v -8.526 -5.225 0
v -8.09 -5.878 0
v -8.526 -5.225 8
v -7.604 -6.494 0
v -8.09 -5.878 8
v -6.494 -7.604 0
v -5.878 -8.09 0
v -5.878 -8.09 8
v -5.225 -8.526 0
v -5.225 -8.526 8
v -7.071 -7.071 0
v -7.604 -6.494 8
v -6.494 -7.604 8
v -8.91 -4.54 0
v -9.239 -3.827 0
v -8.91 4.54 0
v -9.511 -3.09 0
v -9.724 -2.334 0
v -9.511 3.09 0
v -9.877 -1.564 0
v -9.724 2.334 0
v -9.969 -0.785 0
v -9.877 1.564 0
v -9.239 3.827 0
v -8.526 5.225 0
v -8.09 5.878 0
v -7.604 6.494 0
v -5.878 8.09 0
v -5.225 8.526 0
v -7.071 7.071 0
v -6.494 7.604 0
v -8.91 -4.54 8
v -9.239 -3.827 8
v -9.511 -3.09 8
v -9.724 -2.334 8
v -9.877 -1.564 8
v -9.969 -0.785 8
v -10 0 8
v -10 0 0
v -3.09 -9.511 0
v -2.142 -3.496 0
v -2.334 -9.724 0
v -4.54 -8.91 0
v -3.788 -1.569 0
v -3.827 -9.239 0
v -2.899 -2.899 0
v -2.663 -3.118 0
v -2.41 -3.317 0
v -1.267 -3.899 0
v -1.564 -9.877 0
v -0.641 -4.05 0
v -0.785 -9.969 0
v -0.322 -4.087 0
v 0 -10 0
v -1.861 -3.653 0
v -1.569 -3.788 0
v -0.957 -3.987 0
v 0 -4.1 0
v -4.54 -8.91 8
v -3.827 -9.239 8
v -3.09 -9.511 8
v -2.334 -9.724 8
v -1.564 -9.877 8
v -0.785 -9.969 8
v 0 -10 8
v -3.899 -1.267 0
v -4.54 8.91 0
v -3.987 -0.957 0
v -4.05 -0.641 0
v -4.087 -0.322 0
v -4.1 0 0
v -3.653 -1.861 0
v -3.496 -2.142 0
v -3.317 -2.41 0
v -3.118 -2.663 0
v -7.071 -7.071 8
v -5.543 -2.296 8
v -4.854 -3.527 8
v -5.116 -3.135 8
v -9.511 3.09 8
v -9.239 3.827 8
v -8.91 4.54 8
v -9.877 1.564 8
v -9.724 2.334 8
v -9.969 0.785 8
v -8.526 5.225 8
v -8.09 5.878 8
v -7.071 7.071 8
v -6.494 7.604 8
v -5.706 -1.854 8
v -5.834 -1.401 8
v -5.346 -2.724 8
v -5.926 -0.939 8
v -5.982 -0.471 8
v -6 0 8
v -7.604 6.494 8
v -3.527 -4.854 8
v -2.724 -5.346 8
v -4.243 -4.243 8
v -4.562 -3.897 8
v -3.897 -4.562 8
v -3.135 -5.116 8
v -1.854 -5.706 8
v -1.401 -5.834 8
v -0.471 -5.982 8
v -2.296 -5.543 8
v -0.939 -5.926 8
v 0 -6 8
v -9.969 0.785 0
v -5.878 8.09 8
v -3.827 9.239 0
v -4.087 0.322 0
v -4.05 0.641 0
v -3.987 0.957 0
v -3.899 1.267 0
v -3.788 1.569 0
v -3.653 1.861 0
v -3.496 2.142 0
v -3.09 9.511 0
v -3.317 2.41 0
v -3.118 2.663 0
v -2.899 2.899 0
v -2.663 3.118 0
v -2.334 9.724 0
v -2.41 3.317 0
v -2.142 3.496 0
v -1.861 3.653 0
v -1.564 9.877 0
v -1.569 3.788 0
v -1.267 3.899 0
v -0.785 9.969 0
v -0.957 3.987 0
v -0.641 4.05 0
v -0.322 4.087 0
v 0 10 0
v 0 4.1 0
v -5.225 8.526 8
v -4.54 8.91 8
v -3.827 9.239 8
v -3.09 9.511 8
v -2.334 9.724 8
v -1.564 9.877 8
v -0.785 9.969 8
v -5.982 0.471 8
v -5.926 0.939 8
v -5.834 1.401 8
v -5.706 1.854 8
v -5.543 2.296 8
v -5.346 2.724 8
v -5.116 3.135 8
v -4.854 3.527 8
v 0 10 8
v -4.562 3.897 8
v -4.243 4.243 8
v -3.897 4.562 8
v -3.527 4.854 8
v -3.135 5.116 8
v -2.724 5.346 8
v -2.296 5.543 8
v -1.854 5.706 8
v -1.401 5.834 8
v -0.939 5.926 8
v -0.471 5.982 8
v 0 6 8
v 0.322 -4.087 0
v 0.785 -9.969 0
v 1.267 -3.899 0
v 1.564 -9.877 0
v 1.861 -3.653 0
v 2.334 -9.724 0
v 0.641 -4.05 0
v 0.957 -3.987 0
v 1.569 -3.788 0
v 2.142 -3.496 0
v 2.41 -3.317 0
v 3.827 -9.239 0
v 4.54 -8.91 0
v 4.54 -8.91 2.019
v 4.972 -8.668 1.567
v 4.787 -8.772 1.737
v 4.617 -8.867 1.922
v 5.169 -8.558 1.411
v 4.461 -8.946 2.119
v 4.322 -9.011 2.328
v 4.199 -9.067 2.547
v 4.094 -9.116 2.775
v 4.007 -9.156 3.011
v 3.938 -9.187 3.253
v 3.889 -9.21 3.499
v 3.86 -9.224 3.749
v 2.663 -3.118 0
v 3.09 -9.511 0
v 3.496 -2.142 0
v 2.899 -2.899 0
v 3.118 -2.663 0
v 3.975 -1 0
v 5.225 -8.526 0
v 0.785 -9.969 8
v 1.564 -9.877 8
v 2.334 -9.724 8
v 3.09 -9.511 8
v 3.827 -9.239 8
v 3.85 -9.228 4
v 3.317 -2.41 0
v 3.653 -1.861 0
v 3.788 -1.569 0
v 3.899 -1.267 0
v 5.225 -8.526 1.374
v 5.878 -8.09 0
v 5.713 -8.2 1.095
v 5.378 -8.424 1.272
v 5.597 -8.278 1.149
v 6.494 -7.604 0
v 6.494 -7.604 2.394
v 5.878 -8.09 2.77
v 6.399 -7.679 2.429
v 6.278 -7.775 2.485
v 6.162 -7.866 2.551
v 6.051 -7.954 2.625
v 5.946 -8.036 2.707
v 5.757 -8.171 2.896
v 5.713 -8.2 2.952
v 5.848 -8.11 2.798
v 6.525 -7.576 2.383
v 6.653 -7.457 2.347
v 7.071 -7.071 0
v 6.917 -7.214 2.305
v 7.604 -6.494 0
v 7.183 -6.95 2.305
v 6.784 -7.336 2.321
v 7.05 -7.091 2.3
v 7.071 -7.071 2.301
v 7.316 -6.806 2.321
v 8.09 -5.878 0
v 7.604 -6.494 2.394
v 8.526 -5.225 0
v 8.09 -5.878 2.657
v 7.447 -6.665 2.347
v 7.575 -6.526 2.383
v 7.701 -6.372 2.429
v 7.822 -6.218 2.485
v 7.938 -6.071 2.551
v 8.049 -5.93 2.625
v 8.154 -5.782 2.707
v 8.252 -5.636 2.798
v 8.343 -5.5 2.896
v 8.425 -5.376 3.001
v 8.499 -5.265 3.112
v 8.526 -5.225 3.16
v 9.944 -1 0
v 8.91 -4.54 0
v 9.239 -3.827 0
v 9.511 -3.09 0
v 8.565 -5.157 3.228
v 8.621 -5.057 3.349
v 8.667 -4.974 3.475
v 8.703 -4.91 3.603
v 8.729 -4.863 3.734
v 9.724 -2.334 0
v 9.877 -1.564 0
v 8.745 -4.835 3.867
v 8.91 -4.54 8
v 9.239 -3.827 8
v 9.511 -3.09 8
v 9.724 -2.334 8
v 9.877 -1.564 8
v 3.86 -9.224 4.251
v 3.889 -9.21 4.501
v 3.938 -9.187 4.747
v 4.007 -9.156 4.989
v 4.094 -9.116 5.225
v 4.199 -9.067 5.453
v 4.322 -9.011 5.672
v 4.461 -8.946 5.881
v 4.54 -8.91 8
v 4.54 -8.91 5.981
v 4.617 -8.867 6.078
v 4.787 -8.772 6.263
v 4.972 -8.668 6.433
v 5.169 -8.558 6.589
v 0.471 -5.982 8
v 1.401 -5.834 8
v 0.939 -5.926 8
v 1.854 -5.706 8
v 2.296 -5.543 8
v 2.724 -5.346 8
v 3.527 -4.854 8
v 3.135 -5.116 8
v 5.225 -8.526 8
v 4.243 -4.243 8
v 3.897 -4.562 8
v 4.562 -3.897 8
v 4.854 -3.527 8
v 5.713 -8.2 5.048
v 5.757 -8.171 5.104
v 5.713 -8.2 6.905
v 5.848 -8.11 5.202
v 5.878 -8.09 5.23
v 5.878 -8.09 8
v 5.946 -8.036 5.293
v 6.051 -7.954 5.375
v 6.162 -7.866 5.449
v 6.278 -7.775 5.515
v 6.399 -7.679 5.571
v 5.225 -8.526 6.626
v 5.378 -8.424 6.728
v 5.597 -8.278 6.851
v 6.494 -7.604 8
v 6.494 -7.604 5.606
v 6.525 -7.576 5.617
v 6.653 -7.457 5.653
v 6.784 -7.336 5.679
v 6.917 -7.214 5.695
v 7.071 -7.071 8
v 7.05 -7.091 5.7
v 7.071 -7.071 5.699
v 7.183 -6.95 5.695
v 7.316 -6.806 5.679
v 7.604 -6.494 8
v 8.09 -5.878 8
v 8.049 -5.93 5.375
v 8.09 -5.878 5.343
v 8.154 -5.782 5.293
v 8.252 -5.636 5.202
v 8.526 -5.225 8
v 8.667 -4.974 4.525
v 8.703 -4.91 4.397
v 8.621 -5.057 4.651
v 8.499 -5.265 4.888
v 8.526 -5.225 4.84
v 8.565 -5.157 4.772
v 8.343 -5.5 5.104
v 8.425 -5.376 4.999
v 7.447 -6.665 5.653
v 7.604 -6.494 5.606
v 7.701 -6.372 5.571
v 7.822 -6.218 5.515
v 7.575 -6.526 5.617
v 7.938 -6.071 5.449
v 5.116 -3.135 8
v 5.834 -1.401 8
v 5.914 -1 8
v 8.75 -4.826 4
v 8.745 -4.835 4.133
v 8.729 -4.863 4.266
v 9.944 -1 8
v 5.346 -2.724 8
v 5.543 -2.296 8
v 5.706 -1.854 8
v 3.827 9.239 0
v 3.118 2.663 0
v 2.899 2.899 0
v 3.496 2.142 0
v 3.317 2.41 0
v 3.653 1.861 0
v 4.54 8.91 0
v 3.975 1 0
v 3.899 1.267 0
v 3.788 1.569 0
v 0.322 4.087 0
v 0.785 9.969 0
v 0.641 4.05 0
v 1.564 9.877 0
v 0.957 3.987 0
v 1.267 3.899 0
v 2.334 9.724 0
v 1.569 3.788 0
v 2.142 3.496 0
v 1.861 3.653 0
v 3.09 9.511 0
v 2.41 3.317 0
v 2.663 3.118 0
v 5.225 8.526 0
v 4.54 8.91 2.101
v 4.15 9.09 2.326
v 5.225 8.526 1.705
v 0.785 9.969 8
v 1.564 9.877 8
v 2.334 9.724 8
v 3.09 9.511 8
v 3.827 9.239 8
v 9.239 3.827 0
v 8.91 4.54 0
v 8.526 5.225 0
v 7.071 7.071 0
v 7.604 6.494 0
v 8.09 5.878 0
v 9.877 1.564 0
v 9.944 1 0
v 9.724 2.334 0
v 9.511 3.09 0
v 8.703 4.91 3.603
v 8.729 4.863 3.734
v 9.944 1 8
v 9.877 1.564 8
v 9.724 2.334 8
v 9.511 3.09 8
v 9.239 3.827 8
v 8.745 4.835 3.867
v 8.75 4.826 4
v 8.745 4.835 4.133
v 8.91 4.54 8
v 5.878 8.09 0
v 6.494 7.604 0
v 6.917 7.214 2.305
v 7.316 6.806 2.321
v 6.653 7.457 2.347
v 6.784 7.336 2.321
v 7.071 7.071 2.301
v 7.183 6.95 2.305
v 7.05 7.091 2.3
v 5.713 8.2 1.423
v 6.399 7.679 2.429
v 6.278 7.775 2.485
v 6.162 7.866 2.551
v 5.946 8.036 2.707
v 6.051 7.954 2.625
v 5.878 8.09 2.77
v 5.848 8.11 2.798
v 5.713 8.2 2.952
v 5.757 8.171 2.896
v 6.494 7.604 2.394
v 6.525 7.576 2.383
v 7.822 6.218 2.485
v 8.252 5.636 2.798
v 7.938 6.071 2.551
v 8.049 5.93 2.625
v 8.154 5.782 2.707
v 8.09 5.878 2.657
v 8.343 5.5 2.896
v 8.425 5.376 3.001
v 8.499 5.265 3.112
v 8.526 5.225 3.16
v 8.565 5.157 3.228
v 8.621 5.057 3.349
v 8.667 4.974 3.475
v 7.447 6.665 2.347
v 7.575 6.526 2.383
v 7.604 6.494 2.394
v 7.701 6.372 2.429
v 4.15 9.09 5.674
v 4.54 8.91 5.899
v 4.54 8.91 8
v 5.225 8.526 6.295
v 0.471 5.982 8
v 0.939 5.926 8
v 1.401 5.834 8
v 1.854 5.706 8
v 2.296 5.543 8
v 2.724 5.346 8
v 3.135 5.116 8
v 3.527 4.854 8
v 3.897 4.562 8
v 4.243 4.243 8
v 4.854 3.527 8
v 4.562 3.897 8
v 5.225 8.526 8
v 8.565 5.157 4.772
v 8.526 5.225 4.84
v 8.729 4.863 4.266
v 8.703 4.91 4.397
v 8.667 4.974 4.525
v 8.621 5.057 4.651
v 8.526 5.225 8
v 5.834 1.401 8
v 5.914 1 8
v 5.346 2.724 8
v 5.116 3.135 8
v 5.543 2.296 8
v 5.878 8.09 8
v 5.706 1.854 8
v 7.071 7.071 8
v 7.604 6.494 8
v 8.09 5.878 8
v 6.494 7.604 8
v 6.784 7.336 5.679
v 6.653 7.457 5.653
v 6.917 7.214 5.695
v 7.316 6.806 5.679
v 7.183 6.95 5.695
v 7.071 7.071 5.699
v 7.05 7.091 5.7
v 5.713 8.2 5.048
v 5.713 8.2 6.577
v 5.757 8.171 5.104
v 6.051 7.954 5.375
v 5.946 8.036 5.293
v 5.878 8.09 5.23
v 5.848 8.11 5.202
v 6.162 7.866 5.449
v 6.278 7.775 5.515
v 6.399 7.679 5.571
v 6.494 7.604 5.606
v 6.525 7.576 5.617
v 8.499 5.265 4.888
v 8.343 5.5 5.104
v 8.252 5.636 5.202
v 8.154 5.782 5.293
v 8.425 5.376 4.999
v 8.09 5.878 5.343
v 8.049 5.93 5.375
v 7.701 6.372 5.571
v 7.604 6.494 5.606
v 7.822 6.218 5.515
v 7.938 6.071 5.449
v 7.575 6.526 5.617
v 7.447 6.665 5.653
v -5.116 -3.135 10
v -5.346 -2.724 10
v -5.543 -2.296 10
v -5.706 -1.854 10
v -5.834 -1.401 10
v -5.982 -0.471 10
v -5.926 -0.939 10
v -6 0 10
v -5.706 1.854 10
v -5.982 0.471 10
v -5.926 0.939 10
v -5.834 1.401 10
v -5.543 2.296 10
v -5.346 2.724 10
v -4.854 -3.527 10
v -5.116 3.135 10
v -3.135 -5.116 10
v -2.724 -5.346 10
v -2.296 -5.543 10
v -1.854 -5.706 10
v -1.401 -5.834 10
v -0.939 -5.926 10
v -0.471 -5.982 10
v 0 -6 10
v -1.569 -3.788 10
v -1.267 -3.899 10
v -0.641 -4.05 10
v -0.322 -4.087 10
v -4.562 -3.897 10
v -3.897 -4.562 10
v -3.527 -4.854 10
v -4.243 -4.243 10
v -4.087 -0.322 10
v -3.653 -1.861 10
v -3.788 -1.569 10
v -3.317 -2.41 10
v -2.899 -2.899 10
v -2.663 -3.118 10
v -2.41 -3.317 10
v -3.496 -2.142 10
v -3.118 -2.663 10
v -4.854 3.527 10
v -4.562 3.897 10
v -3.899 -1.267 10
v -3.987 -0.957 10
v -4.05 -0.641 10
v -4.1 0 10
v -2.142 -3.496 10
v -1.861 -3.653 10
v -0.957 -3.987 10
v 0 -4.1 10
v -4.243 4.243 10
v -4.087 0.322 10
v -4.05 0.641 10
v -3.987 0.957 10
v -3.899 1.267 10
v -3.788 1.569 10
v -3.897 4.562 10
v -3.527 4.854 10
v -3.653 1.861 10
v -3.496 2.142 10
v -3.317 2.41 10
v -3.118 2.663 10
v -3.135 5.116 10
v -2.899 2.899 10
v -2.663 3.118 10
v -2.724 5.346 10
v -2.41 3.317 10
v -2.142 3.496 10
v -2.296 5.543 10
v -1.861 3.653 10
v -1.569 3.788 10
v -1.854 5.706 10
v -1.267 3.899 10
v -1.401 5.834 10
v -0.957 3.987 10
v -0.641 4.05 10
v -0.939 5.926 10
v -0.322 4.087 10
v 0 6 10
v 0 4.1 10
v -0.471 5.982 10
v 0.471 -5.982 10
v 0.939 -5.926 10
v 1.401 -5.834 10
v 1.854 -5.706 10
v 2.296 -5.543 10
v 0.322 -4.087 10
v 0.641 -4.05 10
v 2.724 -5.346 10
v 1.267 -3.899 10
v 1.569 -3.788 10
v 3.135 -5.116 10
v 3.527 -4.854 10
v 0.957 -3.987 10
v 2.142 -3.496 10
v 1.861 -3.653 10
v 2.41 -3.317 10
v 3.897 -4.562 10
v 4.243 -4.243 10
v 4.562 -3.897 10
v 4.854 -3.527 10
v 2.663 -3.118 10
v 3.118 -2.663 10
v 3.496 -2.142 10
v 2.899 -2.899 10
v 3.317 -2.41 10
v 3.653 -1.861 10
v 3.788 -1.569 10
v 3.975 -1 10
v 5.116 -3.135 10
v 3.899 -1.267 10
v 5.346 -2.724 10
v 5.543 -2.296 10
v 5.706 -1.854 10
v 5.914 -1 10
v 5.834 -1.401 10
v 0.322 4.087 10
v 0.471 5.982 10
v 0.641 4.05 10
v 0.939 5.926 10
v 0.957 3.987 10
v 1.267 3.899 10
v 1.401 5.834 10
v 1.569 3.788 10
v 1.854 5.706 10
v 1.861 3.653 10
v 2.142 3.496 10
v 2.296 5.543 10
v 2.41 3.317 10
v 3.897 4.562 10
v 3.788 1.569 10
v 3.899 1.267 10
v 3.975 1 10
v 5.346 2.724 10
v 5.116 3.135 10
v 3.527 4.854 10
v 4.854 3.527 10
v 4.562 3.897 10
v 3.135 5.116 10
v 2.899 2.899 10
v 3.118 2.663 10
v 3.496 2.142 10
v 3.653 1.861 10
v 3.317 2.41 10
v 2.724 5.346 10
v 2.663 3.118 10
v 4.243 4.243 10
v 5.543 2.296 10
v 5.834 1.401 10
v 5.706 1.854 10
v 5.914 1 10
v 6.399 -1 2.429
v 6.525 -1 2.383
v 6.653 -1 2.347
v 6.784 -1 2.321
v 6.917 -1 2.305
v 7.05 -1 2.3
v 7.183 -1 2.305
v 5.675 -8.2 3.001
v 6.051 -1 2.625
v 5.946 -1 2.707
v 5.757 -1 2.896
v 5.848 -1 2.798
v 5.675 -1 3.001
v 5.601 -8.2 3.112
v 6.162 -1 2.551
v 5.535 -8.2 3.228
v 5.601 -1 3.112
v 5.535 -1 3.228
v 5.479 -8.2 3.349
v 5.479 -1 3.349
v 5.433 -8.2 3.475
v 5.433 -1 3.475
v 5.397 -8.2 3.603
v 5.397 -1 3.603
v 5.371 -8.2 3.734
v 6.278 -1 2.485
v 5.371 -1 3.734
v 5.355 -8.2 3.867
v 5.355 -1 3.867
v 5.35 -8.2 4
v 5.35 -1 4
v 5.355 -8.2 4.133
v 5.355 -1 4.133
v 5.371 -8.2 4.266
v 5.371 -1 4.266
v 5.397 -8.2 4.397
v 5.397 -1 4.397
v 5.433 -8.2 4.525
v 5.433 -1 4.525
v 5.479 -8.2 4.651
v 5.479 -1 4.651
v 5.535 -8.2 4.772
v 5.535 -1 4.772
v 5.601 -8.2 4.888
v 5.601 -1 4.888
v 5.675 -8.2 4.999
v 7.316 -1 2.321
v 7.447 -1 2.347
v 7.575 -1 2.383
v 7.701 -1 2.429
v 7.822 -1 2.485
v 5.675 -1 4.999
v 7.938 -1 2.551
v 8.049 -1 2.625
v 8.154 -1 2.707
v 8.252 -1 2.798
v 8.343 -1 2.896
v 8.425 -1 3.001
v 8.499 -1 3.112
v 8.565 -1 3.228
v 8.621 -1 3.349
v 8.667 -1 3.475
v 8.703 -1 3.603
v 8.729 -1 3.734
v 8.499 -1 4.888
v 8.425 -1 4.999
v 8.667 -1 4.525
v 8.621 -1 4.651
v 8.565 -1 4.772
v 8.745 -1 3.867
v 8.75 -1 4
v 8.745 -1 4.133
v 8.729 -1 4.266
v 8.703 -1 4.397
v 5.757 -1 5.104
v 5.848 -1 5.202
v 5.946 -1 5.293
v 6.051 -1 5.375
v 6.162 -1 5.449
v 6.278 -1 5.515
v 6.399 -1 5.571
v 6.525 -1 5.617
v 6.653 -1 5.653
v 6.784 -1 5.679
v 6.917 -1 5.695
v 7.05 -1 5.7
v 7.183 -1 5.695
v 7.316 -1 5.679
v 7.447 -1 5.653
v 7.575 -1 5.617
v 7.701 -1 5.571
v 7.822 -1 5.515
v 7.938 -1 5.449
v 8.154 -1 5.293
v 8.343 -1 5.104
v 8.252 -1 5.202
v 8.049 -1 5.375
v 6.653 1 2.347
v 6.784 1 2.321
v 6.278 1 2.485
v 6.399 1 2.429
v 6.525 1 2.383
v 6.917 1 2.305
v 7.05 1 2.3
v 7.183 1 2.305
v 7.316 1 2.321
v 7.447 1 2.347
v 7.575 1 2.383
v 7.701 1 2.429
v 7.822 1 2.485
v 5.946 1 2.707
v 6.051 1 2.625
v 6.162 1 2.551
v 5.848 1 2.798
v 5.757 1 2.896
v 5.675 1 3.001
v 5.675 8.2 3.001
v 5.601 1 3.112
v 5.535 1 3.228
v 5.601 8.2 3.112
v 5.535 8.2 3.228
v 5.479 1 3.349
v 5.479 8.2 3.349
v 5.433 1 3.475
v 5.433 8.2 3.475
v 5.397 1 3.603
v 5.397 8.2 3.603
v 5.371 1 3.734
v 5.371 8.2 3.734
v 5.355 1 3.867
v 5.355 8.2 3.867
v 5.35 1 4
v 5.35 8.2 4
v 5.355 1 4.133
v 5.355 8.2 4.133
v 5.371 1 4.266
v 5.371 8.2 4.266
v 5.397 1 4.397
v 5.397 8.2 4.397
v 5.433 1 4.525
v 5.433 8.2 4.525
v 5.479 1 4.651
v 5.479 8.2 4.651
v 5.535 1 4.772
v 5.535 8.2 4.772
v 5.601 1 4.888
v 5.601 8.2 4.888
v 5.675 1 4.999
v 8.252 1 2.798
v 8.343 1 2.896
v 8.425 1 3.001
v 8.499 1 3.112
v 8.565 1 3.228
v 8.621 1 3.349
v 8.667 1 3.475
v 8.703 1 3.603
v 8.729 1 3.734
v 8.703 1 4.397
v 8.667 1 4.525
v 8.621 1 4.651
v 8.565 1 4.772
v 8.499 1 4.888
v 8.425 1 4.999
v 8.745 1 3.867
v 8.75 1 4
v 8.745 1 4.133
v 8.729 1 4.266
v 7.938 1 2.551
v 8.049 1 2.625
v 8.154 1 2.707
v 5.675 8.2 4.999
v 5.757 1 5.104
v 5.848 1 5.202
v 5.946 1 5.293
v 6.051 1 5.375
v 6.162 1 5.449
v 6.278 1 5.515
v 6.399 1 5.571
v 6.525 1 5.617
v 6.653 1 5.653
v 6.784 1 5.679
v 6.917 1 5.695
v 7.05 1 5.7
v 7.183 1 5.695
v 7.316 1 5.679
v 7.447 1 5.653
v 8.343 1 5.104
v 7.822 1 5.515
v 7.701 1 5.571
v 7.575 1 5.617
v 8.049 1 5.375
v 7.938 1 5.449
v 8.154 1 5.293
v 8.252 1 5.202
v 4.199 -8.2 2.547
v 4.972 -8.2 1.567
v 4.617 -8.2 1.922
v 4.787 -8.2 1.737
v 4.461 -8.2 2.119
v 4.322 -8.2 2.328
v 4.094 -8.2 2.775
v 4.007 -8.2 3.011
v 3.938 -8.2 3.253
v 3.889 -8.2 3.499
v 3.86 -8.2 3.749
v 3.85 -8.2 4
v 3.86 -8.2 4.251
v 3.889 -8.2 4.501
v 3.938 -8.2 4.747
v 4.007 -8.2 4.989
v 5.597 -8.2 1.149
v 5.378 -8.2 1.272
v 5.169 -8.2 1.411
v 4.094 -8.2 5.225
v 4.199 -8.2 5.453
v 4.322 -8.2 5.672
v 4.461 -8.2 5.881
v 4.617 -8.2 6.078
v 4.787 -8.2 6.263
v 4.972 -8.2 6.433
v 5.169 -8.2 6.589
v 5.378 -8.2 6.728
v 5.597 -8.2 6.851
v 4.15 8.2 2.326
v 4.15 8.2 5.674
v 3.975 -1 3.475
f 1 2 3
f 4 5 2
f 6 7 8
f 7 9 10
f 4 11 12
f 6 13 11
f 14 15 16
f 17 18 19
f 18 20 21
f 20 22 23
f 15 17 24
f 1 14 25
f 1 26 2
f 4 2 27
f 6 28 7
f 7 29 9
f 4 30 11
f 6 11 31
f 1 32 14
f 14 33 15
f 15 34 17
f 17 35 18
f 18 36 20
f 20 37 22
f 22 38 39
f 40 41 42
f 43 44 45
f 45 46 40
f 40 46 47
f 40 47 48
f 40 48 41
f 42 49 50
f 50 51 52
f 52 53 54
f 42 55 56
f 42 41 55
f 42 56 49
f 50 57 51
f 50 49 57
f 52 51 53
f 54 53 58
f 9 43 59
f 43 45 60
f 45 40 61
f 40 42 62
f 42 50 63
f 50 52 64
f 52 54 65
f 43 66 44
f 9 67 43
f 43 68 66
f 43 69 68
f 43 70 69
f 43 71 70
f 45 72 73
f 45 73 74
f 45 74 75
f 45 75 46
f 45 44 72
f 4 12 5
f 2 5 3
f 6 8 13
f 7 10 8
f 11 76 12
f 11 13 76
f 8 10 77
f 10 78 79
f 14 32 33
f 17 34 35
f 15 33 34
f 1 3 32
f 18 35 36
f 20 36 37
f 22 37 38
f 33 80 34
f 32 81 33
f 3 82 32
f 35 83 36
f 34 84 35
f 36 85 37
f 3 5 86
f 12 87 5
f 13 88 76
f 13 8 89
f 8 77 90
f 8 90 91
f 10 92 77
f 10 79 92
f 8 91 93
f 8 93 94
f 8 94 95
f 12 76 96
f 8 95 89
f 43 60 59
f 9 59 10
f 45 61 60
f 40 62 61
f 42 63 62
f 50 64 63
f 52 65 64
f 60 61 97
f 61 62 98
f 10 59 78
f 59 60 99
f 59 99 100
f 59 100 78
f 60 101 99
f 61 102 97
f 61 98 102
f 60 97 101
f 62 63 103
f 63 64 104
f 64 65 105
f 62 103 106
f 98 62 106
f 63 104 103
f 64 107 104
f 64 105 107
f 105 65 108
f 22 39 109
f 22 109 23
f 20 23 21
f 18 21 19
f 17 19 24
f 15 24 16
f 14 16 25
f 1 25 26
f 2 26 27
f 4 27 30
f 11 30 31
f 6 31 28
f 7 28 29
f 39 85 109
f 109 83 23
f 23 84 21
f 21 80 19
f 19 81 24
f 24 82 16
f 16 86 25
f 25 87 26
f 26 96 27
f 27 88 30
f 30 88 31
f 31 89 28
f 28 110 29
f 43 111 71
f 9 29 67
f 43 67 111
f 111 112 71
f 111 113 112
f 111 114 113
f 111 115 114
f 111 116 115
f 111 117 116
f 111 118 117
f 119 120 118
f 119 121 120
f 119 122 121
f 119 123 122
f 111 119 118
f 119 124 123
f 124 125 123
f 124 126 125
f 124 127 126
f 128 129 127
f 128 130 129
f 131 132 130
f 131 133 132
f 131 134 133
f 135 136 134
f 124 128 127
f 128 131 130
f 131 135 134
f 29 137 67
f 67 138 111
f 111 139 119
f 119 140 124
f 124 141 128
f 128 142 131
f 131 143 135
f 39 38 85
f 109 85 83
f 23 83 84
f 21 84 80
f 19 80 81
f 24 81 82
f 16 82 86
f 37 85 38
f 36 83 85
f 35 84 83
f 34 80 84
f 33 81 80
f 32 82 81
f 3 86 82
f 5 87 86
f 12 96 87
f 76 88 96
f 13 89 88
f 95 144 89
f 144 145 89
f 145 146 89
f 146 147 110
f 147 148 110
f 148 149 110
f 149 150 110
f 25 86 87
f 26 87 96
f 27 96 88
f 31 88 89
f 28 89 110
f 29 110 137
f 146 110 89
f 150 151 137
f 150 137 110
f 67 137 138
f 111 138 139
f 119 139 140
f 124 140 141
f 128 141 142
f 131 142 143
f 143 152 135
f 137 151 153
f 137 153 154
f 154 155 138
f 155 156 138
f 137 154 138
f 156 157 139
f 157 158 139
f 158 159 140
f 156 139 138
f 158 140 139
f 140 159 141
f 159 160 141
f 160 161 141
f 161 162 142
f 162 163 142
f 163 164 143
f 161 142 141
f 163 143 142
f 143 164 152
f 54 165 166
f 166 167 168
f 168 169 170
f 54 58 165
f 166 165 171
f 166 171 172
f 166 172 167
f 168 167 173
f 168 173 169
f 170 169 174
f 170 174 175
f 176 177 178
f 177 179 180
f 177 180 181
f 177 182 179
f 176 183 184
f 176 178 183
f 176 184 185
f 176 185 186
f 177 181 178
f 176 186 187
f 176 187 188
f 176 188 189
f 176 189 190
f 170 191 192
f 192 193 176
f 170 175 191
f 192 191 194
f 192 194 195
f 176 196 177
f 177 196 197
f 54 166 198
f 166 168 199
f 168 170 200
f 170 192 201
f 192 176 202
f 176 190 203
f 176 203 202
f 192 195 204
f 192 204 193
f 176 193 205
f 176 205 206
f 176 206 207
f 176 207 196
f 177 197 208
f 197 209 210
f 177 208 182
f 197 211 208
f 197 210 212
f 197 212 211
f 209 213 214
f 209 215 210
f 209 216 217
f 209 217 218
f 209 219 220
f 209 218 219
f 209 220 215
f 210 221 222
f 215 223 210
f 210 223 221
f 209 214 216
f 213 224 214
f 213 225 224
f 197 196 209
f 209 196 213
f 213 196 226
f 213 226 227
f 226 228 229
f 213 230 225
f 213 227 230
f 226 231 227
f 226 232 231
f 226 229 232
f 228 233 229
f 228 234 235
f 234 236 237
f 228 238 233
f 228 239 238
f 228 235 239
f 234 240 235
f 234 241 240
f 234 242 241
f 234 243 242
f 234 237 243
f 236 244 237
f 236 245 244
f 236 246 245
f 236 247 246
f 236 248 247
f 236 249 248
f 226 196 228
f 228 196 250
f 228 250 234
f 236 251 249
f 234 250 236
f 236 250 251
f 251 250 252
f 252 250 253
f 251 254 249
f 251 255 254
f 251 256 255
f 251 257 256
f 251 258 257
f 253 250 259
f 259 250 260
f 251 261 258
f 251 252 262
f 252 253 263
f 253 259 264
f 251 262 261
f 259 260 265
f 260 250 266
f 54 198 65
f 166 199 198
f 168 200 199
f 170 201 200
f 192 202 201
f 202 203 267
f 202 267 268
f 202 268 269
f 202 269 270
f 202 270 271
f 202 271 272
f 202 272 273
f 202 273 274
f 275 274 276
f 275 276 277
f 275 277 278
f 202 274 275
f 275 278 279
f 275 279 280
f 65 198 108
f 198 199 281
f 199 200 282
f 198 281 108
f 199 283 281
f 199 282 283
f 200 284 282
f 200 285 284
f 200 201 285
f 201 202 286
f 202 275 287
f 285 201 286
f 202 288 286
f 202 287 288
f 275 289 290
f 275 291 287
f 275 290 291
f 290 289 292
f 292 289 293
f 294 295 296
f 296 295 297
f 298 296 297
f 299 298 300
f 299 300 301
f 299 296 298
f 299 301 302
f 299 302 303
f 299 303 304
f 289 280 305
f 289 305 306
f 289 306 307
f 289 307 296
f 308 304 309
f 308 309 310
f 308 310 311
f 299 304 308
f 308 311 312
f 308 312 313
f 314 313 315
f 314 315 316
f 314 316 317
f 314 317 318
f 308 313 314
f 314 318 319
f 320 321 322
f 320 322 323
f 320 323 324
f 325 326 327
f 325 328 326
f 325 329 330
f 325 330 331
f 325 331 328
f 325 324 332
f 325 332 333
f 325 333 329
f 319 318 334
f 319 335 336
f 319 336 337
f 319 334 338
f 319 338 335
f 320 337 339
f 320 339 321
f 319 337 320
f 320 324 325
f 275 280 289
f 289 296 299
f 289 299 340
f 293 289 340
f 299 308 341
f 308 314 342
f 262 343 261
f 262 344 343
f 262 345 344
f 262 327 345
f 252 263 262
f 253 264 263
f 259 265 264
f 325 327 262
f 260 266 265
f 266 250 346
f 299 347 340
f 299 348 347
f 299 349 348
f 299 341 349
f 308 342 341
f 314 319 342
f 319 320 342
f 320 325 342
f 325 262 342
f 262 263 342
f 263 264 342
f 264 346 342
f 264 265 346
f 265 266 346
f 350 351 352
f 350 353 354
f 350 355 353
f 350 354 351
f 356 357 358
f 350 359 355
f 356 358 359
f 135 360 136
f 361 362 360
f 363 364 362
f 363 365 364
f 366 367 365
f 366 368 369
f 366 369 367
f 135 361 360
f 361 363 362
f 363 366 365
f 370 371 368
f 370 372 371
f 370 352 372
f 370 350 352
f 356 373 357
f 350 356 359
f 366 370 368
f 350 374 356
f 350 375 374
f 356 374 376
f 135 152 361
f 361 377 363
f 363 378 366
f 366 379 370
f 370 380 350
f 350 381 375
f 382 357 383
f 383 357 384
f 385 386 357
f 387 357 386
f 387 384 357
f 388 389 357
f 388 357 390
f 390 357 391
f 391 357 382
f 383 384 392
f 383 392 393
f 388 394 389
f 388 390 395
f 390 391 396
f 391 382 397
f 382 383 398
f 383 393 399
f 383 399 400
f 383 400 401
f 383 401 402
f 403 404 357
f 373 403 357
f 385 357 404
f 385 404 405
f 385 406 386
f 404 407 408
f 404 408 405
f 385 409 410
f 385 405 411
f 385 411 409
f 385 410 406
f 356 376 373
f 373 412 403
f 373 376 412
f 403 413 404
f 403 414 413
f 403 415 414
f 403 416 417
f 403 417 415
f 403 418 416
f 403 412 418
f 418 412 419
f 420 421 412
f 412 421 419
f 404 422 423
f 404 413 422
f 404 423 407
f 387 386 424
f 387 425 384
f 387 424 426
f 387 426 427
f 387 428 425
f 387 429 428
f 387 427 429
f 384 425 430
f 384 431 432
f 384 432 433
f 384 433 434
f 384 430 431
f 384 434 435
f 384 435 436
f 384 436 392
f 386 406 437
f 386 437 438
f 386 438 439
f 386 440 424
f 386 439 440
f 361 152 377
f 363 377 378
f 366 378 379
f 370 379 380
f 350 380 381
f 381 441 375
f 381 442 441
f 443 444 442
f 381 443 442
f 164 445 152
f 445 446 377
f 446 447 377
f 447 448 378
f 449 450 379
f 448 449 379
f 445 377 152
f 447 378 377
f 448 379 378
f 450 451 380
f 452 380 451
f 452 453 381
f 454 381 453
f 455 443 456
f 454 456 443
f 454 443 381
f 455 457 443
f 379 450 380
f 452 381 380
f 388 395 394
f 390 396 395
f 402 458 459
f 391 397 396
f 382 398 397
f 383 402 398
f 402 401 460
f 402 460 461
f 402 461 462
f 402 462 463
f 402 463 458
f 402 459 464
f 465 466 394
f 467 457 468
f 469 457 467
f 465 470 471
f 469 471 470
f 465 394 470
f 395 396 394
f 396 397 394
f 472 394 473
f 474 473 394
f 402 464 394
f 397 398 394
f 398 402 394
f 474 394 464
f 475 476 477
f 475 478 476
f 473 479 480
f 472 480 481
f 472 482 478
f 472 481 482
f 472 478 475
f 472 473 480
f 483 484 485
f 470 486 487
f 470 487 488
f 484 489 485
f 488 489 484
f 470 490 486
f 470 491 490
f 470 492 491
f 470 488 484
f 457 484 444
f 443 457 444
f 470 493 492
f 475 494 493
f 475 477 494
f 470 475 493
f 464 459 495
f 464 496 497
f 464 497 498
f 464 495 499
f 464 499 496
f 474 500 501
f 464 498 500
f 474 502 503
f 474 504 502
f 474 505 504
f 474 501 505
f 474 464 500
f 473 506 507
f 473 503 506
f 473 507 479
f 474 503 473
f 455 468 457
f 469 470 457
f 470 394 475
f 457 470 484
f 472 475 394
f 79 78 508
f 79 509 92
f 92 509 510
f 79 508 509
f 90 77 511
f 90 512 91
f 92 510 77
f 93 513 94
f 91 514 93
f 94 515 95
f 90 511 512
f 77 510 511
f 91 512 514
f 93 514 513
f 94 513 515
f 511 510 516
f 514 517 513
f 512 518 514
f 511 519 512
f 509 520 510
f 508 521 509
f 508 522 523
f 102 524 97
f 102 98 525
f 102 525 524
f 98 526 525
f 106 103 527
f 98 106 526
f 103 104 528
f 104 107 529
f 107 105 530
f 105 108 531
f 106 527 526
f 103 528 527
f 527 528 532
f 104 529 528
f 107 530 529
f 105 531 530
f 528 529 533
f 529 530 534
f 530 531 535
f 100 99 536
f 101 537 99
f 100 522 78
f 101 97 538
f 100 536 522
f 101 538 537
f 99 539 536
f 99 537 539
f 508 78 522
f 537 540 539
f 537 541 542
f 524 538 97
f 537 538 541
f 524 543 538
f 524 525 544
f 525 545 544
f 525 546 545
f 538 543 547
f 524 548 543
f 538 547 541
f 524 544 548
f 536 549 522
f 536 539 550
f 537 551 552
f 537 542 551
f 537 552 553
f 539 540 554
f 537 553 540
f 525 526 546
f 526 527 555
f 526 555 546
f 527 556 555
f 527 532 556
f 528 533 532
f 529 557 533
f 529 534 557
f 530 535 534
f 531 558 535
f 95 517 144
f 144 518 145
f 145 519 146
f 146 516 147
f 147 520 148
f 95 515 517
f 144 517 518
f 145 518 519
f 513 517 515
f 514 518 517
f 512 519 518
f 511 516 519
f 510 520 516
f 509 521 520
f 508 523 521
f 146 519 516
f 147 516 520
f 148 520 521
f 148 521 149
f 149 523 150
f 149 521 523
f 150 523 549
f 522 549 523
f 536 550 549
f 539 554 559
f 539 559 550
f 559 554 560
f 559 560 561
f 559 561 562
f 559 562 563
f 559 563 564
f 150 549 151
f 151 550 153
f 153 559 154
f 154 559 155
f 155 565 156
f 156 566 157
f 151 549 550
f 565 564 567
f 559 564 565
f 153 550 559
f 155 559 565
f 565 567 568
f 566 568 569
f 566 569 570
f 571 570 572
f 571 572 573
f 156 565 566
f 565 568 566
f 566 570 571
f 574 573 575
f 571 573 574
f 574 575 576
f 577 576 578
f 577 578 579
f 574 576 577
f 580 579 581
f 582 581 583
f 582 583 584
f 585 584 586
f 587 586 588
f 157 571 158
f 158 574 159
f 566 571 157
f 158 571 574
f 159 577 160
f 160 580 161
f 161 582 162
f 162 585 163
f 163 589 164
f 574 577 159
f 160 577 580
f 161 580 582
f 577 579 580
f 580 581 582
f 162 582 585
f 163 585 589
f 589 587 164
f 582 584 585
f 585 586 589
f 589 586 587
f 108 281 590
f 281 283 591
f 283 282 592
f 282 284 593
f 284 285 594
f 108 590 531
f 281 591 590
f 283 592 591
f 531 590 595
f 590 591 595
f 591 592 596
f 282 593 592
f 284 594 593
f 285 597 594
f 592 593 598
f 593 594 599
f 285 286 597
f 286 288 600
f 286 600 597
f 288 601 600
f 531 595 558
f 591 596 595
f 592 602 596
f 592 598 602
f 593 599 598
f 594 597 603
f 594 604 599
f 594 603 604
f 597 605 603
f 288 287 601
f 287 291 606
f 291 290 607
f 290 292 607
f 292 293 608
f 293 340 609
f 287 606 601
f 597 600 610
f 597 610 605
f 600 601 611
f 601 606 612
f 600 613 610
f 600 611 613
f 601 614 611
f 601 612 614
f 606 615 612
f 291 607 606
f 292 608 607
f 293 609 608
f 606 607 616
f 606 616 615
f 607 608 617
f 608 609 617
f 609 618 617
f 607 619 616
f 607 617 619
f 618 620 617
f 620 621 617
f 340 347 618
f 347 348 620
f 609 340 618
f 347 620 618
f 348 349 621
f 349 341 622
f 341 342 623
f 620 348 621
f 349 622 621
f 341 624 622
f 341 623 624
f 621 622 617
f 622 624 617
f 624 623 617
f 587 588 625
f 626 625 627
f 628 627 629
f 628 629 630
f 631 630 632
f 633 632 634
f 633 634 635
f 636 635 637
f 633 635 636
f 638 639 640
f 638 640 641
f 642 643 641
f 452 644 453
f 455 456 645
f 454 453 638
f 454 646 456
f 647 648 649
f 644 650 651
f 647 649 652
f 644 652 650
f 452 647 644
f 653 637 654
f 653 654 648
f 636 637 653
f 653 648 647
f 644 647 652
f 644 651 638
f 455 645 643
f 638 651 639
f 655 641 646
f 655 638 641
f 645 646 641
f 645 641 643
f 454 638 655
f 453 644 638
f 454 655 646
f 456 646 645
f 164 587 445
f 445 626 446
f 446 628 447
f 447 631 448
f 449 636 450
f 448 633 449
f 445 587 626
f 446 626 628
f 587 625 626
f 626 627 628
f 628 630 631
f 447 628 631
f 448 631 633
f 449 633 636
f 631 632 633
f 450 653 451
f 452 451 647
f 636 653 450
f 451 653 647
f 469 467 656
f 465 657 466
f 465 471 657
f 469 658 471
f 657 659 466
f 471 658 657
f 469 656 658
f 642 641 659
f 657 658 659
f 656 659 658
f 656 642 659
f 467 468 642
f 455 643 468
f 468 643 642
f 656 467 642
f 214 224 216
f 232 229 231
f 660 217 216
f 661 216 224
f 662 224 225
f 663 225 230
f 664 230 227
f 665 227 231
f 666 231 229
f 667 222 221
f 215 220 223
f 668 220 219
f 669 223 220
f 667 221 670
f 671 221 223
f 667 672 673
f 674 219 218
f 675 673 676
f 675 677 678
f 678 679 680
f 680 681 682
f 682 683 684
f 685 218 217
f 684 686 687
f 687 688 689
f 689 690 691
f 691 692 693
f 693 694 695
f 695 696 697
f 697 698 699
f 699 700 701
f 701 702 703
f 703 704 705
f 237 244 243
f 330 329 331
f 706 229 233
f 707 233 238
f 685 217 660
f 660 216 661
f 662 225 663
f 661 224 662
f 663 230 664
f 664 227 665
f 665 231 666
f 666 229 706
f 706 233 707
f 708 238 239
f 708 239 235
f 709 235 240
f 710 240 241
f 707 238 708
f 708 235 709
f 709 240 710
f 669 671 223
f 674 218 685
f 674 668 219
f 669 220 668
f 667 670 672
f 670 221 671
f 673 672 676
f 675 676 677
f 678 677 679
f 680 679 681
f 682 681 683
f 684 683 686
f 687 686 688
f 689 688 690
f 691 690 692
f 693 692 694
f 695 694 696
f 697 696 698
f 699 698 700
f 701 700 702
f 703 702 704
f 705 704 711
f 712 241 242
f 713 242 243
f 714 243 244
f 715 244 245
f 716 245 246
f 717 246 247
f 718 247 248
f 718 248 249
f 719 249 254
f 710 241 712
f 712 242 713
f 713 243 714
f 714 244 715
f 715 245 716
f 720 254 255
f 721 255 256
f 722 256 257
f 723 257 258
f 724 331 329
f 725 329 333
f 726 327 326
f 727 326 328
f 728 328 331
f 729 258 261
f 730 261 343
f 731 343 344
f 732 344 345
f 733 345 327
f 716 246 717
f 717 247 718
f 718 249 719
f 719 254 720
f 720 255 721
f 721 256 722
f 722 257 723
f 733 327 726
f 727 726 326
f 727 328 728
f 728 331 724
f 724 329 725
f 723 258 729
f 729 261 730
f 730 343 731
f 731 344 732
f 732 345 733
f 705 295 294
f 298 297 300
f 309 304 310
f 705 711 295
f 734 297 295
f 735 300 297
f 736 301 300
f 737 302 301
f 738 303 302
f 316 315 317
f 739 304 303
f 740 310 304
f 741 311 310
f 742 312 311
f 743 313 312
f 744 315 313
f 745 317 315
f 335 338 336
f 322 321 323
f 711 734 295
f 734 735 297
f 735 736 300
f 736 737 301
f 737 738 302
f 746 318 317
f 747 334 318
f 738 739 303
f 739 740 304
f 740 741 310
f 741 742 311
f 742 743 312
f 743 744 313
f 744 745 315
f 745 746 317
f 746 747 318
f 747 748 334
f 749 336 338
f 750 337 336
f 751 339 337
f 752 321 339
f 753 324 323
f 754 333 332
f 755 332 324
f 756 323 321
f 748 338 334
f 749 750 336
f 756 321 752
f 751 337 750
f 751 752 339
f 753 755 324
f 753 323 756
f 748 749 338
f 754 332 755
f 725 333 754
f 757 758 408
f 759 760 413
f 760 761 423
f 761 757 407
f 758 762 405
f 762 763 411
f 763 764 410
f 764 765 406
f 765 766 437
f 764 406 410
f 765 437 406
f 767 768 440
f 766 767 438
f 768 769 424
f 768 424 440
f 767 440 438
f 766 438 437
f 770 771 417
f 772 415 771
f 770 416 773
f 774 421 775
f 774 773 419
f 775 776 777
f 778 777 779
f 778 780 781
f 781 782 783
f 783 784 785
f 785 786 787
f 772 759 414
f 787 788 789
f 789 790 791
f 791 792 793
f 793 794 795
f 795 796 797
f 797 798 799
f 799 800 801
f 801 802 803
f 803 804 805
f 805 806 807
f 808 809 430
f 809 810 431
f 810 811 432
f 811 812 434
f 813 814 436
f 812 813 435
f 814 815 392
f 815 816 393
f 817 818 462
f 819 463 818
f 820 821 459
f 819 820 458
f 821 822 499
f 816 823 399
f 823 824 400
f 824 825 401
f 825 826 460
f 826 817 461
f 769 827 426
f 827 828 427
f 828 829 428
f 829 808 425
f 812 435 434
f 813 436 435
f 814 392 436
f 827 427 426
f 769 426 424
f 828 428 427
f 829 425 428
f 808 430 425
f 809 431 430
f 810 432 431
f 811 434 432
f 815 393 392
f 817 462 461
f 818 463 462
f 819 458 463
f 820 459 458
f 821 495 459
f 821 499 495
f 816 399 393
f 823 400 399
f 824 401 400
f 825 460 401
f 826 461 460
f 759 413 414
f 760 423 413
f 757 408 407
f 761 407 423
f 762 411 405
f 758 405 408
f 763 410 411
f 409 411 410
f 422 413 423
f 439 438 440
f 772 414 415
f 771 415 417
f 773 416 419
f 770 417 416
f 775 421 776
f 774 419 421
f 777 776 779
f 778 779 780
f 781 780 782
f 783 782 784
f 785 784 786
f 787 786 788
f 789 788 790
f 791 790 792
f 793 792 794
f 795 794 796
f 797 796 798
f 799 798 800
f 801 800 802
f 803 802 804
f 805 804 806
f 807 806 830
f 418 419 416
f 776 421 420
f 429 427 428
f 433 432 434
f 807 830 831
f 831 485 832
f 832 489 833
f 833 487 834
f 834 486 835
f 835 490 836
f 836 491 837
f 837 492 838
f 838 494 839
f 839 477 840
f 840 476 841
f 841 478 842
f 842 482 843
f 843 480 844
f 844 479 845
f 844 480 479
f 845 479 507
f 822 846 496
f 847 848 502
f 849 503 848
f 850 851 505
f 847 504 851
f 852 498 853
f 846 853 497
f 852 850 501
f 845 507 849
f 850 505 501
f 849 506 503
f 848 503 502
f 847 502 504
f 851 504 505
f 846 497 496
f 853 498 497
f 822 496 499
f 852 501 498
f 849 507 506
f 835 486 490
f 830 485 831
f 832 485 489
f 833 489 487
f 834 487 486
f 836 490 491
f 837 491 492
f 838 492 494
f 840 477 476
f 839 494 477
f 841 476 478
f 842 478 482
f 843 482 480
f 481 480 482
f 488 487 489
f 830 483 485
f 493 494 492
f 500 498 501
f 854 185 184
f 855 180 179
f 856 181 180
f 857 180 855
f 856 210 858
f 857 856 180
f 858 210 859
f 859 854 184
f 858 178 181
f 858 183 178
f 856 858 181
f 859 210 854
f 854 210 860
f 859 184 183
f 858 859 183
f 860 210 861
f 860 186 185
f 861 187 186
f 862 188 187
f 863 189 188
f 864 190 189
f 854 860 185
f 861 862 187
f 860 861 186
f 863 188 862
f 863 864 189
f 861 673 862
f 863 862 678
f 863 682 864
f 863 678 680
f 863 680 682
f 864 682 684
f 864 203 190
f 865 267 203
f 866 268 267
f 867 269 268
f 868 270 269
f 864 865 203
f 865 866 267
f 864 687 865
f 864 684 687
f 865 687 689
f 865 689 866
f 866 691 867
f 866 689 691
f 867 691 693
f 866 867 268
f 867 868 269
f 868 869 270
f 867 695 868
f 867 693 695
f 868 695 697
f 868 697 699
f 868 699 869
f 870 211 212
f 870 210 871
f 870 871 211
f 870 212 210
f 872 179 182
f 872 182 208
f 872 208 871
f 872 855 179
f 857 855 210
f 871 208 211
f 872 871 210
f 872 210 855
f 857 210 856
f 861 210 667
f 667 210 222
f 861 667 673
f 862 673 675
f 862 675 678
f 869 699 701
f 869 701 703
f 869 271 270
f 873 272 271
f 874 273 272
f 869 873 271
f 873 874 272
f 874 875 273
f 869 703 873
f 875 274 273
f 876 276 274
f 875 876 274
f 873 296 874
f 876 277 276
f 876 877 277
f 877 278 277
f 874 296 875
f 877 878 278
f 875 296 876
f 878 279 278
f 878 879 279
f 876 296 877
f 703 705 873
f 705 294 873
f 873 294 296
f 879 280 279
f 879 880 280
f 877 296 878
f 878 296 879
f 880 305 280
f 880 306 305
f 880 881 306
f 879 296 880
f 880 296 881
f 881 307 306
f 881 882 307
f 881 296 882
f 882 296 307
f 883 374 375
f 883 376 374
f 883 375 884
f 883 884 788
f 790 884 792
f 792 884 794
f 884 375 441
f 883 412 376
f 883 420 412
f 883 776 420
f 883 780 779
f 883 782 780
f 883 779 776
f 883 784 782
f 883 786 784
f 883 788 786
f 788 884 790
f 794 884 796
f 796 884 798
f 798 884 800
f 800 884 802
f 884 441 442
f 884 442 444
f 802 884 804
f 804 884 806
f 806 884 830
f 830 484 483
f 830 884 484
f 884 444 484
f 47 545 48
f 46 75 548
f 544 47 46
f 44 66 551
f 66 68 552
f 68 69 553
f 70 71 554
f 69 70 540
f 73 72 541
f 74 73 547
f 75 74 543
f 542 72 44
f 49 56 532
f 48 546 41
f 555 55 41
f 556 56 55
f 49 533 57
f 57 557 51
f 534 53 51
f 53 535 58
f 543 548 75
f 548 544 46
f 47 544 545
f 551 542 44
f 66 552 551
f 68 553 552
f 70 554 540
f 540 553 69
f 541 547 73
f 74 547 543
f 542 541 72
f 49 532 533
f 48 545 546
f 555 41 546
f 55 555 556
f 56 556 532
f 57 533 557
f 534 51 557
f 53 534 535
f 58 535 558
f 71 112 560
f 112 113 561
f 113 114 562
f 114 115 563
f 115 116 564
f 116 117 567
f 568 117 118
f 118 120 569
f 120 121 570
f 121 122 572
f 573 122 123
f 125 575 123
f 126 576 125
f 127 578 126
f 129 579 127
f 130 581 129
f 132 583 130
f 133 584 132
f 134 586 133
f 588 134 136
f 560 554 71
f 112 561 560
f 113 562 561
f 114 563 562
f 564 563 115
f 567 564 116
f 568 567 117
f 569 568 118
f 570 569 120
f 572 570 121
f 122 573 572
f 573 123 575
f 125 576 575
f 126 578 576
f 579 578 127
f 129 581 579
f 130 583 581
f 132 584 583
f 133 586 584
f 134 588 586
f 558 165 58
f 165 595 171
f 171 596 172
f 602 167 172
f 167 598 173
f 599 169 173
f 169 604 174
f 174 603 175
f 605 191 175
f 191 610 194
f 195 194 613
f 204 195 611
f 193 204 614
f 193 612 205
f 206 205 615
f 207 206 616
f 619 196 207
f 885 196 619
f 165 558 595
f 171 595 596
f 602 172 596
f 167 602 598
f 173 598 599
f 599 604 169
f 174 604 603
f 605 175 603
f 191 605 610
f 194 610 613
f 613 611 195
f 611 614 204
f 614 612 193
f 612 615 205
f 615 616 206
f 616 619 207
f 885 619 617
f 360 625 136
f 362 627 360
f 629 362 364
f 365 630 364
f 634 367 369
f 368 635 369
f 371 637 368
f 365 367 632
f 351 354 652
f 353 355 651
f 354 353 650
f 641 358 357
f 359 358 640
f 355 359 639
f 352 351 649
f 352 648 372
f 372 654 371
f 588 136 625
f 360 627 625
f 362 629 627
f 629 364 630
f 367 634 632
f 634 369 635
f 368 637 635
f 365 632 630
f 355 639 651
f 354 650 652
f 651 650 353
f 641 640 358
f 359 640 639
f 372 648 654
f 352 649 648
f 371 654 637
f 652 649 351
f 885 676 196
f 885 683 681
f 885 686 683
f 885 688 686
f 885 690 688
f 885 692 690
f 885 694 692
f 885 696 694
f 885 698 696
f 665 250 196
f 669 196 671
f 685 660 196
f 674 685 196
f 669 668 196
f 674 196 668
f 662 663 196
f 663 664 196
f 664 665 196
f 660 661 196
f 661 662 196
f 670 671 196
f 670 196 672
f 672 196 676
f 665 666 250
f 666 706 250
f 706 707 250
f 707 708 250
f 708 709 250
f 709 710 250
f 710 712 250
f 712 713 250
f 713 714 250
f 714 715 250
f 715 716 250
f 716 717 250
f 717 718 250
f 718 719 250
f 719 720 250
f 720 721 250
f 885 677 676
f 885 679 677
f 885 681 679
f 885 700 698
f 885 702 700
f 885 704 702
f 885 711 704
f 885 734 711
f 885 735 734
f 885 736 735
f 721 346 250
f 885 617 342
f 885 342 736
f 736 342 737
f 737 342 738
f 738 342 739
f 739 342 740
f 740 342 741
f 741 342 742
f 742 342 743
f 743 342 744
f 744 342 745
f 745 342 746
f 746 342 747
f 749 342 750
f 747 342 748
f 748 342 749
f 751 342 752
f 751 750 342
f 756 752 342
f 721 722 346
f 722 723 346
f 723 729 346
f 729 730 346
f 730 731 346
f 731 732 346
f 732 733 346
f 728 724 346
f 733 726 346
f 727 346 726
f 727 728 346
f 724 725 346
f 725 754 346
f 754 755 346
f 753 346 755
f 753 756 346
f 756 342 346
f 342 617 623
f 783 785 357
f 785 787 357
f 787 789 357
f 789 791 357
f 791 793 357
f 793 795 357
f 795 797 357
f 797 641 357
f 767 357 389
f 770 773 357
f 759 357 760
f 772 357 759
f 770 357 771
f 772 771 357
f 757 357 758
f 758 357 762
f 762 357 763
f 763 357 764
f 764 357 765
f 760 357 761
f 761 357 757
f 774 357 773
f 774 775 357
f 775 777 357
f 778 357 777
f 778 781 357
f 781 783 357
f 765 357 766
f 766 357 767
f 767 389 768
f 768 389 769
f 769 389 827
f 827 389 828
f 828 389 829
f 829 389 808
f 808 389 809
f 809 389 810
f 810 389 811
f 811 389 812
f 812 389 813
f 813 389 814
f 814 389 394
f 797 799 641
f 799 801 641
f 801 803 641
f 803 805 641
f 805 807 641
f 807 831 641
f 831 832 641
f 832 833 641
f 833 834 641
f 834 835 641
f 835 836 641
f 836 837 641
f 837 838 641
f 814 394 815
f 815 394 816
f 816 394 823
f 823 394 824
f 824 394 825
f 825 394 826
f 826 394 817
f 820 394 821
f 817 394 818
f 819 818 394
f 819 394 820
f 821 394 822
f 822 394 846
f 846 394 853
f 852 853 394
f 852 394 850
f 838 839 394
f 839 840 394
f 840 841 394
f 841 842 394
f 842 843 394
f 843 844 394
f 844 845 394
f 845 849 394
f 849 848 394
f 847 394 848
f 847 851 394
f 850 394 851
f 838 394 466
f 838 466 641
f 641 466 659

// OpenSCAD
// file: design_params.scad
// ============================================================
// SKUA SHARED DESIGN PARAMETERS — single source of truth for
// every dimension two parts must agree on.
//
// Consumers:
//   - every part in cad/ does        include <design_params.scad>
//   - parts in cad/calibration/ do   include <../design_params.scad>
//   - scripts/check_params.py FAILS the build if any of these names
//     is re-declared anywhere else — change values HERE only.
//
// Keep this file to simple `name = value;` lines so the tooling can
// parse it. One-off experiments: `openscad -D name=value` beats the
// include, no need to edit this file.
// ============================================================

// --- Aluminum rod stock (bought; ONE diameter everywhere) ---
// 8 mm rod is chosen to match the 608 bearing bore, so the shaft and
// both arms cut from the same stock.
rod_d        = 8;
shaft_length = 300;  // vertical shaft; sets how high the rotor rides.
                     // Long enough that the hanging vanes clear the
                     // plank — geometry_check.py gates the clearance.
arm_length   = 600;  // each horizontal arm (two of them)

// --- 608 skateboard bearing (bought, TWO of them) ---
// Two bearings spaced apart in the base tower instead of one: a single
// 7 mm-wide bearing lets a 1.2 m rotor wobble; two races 45 mm apart
// make the shaft run true. They come in packs of 8 anyway.
bearing_od = 22;
bearing_w  = 7;
bearing_inner_shoulder_d = 12;  // inner-ring shoulder: anything riding
                                // the INNER race (collar boss) stays
                                // inside this; anything static stays
                                // outside it
pocket_recess = 0.5;  // bearings sit this far below the tower faces so
                      // the rotating inner race never rubs plank or collar body

// --- Calibrated fits (print the gauges, type the winners in here) ---
bearing_press_d = 21.8; // pocket that grips the outer race — cad/calibration/bearing_pocket_gauge.scad
rod_snug_d      = 8.2;  // sockets the rod presses into (hub, collar, cap) — cad/calibration/rod_fit_gauge.scad
rod_free_d      = 8.6;  // bores that must SPIN on the rod (vane sleeve) — same gauge
fit_tol         = 0.2;  // clearance for printed slots/pockets

// --- Base (screwed to the plank) ---
base_d         = 110;
base_t         = 6;
screw_hole_d   = 4.5;   // 4.2 mm wood screws
screw_head_d   = 9.5;   // countersink cone top diameter
screw_circle_d = 90;
screw_count    = 4;
tower_od       = 32;
tower_h        = 60;    // bearing pockets at top and bottom of this
tower_bore_d   = 19;    // between the pockets: retains the outer races,
                        // clears the 12 mm inner-race shoulders
gusset_t       = 4;
gusset_reach   = 16;    // how far a gusset runs out from the tower wall
gusset_h       = 35;

// --- Hub (clamps the shaft top, carries both arms) ---
hub_len          = 70;  // along the arms
hub_w            = 26;
hub_h            = 38;
hub_arm_z        = 30;  // arm bore axis above the hub bottom face
hub_shaft_socket = 22;  // blind shaft socket depth, from the bottom
hub_arm_socket   = 30;  // blind arm socket depth, from each end
hub_corner_r     = 6;

// --- M3 hardware (set screws and the collar clamp) ---
m3_thread_d = 2.9;  // screw forms its own thread (end cap set screw)
m3_clear_d  = 3.4;
m3_nut_af   = 5.8;  // nut across flats, incl. pocket clearance
m3_nut_t    = 2.6;
m3_head_d   = 6.4;

// --- Vane (the flapping flag; TWO of them) ---
vane_sleeve_len = 70;
vane_sleeve_od  = 16;
vane_width      = 150; // panel size along the arm
vane_drop       = 150; // sleeve AXIS to the panel bottom edge
vane_t          = 2;
vane_rim_w      = 3;   // stiffening rim around the panel
vane_rim_h      = 5;
vane_swing_deg  = 120; // free swing between the two stops

// --- Stop cap (arm tip: retains the vane, carries the stop pin) ---
cap_d          = 20;
cap_t          = 10;
cap_bore_depth = 8;
cap_pin_d      = 3.5;
cap_pin_len    = 5;
cap_pin_r      = 6.4;  // pin center radius: clears the rod, lands on the
                       // vane sleeve wall (geometry_check.py verifies both)

// --- Clamp collar (THREE: shaft thrust support + one per arm) ---
collar_od     = 20;
collar_w      = 8;
collar_boss_d = 12;    // rides the bearing inner race / vane sleeve end
collar_boss_h = 2;
collar_slit   = 2;

// --- Assembly stations / sanity limits ---
shaft_bottom_gap = 2;   // shaft tip hovers this far above the plank
printer_bed      = 210; // largest printable footprint, gates part sizes
// main file
// ==============================================================================
//   CLAMP COLLAR — print THREE.
//
//   One on the shaft: boss down, riding the top bearing's INNER race.
//   This is the rotor's thrust bearing seat — the whole rotating mass
//   hangs on it. The boss stays inside bearing_inner_shoulder_d so it
//   never touches the static outer race.
//
//   One on each arm, boss outboard: the inboard end stop for the vane
//   sleeve, boss-to-sleeve so the rubbing contact ring stays small.
//
//   A slit ring closed by an M3 screw and nut across the gap — a plain
//   set screw would slide on smooth aluminum under sustained load, a
//   clamp will not. Prints ring-face down (boss up), the screw hole
//   lying horizontal.
// ==============================================================================

include <design_params.scad>

$fn = 80;

screw_x = (rod_snug_d / 2 + collar_od / 2) / 2;  // mid-wall, crossing the slit

module collar() {
    difference() {
        union() {
            cylinder(h = collar_w, d = collar_od);
            translate([0, 0, collar_w])
                cylinder(h = collar_boss_h, d = collar_boss_d);
        }
        // bore — snug pre-clamp so the collar stays put while positioning
        translate([0, 0, -0.5])
            cylinder(h = collar_w + collar_boss_h + 1, d = rod_snug_d);
        // slit
        translate([0, -collar_slit / 2, -0.5])
            cube([collar_od / 2 + 1, collar_slit, collar_w + collar_boss_h + 1]);
        // clamp screw across the slit
        translate([screw_x, 0, collar_w / 2]) {
            rotate([90, 0, 0])
                cylinder(h = collar_od, d = m3_clear_d, center = true);
            // screw head counterbore
            translate([0, -collar_od / 2 + 1.8, 0])
                rotate([90, 0, 0])
                    cylinder(h = collar_od / 2, d = m3_head_d);
            // nut pocket, one flat up so the roof prints
            translate([0, collar_od / 2 - 1.8, 0])
                rotate([-90, 0, 0])
                    rotate([0, 0, 30])
                        cylinder(h = collar_od / 2, d = m3_nut_af / cos(30), $fn = 6);
        }
    }
}

collar();
